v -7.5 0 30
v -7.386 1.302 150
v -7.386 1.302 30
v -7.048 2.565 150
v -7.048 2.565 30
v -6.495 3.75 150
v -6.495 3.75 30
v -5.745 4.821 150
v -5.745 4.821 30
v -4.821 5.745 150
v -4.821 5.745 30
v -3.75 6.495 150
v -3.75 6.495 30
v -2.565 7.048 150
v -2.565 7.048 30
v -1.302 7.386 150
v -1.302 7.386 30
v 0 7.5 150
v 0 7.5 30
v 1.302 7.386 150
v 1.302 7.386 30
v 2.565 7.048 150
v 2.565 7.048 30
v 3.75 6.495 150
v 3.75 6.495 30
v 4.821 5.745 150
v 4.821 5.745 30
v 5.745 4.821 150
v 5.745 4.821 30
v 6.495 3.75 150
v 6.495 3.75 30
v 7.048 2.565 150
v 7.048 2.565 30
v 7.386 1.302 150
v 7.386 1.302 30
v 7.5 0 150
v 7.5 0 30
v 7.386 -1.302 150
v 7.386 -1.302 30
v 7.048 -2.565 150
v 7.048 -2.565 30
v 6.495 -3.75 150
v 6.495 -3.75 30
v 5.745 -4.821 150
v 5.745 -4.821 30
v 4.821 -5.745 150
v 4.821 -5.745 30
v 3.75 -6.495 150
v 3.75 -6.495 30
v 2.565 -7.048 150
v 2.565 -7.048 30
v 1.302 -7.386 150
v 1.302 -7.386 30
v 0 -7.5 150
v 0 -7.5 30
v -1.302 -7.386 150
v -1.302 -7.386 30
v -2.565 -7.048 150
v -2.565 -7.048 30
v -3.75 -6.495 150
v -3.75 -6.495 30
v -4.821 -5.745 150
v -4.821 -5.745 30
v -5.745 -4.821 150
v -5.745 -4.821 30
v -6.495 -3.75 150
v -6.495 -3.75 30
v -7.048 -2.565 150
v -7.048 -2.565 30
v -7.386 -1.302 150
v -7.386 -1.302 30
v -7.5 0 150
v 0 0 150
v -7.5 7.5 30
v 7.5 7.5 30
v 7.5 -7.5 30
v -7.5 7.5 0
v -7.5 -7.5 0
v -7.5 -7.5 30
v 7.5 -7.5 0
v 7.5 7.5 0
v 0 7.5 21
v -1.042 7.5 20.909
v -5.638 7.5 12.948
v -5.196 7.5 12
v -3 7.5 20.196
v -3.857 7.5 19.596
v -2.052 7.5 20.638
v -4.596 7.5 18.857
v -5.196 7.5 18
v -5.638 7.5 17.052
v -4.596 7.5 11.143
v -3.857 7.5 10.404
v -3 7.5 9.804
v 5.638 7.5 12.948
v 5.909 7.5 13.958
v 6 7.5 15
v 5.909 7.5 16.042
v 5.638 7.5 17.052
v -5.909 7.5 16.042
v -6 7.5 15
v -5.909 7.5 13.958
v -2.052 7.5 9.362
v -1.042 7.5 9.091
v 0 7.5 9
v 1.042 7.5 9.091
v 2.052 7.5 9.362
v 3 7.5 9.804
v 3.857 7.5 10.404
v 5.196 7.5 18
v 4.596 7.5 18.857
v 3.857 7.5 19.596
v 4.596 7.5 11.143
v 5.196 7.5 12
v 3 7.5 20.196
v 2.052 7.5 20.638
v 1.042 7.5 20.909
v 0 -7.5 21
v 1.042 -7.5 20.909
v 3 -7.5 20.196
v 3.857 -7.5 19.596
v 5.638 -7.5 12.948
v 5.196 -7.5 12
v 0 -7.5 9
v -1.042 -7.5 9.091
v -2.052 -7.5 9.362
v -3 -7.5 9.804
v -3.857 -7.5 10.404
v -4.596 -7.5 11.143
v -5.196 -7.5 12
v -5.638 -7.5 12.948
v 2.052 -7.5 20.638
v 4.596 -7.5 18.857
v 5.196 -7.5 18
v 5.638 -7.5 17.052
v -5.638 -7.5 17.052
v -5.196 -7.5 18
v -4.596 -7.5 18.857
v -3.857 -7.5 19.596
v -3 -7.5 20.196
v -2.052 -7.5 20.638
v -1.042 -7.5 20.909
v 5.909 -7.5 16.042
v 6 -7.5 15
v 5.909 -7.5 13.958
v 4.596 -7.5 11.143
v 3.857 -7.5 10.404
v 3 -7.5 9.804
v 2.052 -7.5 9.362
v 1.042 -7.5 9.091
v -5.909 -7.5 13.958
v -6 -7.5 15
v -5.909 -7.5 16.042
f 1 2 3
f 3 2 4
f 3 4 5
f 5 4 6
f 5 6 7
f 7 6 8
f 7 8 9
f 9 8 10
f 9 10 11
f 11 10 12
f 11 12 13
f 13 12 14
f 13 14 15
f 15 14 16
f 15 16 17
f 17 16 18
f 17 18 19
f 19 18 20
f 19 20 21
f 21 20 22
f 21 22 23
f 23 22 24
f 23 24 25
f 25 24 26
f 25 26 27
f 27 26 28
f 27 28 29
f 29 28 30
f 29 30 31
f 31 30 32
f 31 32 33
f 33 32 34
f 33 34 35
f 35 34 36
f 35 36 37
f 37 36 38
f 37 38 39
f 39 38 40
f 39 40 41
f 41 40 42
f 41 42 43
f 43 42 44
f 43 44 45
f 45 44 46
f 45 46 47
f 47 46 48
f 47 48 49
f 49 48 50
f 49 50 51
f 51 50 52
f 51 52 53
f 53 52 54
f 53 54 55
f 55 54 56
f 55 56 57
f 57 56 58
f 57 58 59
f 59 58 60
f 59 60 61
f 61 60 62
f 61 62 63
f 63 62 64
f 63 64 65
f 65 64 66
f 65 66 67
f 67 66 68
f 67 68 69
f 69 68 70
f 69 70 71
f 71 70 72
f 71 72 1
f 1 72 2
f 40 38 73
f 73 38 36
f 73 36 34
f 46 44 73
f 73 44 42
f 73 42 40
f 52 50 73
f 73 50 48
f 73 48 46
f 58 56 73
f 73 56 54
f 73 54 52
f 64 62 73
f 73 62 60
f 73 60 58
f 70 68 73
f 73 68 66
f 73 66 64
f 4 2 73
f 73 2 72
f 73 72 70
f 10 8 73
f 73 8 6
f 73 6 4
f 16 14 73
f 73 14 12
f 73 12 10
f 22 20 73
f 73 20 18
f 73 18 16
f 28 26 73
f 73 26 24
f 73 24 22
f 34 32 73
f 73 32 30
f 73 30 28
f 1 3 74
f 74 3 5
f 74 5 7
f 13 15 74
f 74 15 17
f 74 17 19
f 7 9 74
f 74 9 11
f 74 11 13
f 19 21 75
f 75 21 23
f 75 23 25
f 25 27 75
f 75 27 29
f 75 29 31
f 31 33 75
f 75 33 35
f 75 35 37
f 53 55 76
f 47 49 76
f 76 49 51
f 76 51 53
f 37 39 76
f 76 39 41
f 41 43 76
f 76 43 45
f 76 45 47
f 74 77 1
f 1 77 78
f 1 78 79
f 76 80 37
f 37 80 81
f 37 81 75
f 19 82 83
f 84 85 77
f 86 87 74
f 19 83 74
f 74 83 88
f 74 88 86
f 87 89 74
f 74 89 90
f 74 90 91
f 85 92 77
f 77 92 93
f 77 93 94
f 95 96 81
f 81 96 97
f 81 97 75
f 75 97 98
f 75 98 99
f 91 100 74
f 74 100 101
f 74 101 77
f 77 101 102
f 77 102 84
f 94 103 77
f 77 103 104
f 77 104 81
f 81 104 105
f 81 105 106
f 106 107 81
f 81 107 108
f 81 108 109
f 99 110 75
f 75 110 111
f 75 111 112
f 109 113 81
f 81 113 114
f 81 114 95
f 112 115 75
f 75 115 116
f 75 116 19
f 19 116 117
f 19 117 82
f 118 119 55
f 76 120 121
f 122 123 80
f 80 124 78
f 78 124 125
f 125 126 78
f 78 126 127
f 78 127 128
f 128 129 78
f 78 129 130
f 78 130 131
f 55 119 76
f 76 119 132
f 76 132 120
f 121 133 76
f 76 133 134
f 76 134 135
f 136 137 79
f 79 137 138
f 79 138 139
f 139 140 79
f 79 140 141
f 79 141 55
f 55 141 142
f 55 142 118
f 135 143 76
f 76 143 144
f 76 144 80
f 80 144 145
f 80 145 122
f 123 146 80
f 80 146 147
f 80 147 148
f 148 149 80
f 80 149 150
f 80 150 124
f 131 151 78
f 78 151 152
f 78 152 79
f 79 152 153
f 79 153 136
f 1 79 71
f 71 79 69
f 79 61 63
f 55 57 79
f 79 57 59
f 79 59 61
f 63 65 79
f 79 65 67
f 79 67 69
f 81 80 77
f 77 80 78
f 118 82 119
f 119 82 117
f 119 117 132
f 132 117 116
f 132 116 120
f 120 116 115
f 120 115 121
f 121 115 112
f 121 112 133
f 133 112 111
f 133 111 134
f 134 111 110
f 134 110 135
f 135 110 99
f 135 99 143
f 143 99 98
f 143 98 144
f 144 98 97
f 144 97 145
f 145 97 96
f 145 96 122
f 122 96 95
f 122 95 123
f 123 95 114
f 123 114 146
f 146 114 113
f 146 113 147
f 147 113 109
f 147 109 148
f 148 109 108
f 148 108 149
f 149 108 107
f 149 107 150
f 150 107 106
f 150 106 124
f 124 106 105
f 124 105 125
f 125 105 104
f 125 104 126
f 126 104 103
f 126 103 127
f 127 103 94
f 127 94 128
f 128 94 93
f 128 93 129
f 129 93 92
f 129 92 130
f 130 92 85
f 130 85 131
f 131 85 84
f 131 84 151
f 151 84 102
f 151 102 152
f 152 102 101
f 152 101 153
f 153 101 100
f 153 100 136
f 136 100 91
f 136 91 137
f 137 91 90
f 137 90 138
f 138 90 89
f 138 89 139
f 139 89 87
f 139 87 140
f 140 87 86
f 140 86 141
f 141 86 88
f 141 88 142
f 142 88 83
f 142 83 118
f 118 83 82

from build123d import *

# Parameters (mm, degrees)
SKETCH1_R           = 7.5
BOSS_EXTRUDE1_DEPTH = 150
SKETCH4_W           = 15
SKETCH4_H           = 30
BOSS_EXTRUDE2_DEPTH = 7.5
SKETCH5_R           = 6
CUT_EXTRUDE2_DEPTH  = 151.934588481


with BuildPart() as part:
    # Sketch1 → Boss-Extrude1 (new body)
    with BuildSketch(Plane.XY):
        Circle(SKETCH1_R)
    extrude(amount=BOSS_EXTRUDE1_DEPTH)

    # Sketch4 → Boss-Extrude2 (add, symmetric)
    with BuildSketch(Plane(origin=(0, 0, 0), x_dir=(1, 0, 0), z_dir=(0, 1, 0))):
        with Locations((0, -15)):
            Rectangle(SKETCH4_W, SKETCH4_H)
    extrude(amount=BOSS_EXTRUDE2_DEPTH, both=True)

    # Sketch5 → Cut-Extrude2 (cut, through all)
    with BuildSketch(Plane(origin=(0, 7.5, 0), x_dir=(1, 0, 0), z_dir=(0, 1, 0))):
        with Locations(Location((0, -15, 0), (0, 0, 270))):
            Circle(SKETCH5_R)
    extrude(amount=-CUT_EXTRUDE2_DEPTH, mode=Mode.SUBTRACT)


solid = part.part
